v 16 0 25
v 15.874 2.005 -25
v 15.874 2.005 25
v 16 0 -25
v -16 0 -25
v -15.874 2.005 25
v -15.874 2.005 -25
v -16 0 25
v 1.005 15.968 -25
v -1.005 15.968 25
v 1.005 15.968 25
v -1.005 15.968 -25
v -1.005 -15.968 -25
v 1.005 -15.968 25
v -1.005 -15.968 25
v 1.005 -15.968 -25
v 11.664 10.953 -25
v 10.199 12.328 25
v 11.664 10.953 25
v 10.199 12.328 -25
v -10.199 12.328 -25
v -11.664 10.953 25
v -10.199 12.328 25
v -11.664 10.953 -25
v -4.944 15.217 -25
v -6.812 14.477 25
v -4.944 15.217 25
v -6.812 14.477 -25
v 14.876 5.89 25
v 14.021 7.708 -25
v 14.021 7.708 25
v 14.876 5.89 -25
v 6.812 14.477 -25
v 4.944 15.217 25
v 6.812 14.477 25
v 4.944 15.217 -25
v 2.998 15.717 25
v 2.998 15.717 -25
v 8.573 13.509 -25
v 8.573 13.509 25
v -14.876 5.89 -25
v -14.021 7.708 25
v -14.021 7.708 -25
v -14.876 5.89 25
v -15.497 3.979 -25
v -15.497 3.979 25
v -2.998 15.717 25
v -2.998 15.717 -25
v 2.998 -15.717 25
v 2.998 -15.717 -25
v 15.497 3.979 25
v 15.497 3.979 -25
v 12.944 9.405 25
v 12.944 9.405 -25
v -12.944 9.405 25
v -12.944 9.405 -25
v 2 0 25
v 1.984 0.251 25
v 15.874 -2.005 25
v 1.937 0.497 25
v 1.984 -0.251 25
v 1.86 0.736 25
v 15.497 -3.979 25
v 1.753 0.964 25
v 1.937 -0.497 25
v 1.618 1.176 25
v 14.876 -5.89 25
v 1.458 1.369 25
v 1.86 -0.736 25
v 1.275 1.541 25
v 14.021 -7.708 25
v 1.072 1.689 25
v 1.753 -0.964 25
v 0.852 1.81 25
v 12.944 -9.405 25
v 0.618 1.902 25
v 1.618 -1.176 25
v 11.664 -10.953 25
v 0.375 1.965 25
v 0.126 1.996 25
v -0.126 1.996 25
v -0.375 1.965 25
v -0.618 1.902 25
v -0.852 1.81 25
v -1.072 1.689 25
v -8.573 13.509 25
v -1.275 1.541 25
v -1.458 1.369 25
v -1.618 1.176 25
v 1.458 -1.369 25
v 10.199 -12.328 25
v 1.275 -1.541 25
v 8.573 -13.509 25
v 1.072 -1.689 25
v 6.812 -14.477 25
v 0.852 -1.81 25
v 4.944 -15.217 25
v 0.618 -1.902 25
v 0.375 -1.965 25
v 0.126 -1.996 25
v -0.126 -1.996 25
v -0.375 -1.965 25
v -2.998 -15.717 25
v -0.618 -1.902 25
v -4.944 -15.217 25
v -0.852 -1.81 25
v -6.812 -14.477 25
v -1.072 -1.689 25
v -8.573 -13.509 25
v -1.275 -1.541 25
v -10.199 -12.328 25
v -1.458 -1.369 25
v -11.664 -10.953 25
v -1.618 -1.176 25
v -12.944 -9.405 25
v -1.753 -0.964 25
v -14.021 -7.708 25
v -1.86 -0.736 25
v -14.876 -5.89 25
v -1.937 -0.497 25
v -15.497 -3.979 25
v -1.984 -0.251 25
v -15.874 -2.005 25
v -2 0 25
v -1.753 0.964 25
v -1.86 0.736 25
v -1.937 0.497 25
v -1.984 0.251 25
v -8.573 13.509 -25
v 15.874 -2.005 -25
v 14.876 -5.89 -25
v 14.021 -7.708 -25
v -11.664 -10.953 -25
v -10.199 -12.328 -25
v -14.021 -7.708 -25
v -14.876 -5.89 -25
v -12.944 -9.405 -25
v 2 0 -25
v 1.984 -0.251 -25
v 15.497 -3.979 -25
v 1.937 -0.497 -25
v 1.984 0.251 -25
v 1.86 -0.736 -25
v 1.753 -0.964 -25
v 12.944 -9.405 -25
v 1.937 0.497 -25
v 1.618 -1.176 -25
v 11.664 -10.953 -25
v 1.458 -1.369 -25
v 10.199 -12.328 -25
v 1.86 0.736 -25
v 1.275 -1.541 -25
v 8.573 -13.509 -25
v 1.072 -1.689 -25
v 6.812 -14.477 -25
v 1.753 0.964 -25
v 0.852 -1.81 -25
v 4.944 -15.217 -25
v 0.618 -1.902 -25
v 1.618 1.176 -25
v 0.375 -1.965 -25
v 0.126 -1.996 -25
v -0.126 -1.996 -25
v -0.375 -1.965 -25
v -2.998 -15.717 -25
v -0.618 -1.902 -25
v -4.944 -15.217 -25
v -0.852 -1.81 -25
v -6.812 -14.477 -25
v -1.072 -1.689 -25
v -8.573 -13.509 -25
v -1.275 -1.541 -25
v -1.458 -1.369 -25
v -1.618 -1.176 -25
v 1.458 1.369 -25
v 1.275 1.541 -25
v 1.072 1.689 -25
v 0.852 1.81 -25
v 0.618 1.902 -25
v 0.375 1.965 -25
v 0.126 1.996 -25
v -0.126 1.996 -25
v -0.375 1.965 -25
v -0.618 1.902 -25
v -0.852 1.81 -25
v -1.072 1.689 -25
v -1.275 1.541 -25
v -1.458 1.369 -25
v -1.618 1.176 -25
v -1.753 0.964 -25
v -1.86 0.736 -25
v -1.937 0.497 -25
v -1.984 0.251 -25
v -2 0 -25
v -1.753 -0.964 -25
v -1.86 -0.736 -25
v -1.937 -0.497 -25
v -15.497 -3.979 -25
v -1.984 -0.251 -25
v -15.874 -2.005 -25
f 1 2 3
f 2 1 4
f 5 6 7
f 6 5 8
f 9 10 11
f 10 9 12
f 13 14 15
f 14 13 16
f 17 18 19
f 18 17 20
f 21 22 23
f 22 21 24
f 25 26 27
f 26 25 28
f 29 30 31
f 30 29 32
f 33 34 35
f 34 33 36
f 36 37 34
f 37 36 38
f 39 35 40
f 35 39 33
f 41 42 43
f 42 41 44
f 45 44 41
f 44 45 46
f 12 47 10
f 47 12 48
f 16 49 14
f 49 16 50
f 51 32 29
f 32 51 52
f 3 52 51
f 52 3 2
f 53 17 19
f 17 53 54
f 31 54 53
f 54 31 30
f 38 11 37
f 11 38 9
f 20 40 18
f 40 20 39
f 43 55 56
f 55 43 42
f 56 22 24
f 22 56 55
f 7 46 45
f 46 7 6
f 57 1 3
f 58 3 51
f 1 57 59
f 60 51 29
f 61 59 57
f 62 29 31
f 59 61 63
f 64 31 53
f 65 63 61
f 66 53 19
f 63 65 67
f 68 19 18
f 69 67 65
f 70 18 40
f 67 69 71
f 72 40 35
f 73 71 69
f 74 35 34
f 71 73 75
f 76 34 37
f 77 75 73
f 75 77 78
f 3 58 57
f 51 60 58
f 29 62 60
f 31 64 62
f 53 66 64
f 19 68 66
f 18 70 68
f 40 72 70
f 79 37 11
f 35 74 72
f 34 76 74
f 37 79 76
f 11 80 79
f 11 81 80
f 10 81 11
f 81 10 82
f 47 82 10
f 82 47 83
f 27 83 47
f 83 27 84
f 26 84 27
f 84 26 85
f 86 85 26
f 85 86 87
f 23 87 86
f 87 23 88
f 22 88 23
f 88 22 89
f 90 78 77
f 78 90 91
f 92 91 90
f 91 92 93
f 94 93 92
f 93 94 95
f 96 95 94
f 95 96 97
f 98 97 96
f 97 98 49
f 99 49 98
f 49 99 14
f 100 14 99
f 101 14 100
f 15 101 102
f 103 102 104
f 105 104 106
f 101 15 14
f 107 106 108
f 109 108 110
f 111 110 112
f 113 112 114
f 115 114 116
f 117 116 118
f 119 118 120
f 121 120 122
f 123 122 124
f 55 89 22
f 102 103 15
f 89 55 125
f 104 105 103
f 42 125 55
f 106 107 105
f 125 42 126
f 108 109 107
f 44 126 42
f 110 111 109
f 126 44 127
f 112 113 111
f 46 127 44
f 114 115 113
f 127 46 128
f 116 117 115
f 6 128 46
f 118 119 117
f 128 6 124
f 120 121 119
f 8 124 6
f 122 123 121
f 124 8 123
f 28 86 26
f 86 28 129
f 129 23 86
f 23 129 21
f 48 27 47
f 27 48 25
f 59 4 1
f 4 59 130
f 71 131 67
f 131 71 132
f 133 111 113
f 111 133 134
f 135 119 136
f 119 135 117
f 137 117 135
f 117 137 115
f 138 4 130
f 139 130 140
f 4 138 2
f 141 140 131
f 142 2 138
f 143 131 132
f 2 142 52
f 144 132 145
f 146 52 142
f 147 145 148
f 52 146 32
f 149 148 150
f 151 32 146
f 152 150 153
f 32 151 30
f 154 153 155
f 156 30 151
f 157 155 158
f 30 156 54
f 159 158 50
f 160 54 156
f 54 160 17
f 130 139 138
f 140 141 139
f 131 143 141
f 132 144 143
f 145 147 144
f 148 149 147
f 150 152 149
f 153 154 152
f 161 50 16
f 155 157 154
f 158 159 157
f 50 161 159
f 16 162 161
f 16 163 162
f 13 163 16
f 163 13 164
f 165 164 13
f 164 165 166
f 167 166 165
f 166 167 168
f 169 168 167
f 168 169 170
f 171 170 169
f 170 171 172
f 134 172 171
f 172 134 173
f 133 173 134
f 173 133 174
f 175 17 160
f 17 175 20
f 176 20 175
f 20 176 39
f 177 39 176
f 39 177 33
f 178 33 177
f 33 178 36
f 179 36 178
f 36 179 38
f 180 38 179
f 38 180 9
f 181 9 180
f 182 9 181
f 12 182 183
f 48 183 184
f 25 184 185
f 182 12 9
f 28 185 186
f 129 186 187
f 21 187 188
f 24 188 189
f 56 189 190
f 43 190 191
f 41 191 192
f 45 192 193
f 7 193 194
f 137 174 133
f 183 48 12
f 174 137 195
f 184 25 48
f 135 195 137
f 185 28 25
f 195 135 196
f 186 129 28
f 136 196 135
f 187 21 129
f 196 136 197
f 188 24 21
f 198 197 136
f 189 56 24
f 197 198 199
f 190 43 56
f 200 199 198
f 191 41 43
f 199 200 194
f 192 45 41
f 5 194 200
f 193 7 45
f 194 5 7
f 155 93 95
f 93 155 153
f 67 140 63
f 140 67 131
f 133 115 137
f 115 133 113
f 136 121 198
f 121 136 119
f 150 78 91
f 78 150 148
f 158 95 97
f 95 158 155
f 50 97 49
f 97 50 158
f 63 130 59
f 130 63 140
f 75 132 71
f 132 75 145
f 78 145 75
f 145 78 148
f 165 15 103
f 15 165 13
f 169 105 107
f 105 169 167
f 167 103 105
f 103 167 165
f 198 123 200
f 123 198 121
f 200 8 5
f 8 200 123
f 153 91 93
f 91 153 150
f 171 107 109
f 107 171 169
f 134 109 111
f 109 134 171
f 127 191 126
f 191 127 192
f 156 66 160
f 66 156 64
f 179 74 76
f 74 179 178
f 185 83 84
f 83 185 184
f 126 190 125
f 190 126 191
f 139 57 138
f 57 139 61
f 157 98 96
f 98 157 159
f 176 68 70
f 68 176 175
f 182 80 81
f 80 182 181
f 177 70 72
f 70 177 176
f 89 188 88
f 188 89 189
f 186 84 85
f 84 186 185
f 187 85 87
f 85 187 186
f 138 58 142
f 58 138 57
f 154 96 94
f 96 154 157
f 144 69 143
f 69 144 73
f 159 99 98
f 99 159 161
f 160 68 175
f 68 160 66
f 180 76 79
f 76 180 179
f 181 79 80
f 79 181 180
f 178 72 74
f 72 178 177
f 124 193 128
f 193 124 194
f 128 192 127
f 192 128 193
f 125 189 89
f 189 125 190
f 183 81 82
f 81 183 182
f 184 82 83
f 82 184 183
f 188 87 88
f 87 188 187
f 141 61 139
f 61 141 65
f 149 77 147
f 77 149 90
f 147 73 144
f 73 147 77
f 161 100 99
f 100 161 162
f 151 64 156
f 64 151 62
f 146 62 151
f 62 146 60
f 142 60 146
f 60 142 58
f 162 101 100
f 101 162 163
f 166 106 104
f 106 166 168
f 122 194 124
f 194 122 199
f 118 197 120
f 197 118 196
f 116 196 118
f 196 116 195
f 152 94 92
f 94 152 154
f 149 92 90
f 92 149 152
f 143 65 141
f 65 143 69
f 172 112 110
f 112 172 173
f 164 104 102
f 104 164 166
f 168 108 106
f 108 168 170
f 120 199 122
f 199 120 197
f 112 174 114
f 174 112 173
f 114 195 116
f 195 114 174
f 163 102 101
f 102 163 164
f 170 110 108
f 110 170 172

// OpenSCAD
$fn = 50;


difference() {
	union() {
		translate(v = [0, 0, -25.0000000000]) {
			cylinder(h = 50, r = 16.0000000000);
		}
	}
	union() {
		translate(v = [0, 0, -100.0000000000]) {
			cylinder(h = 200, r = 2);
		}
	}
}
